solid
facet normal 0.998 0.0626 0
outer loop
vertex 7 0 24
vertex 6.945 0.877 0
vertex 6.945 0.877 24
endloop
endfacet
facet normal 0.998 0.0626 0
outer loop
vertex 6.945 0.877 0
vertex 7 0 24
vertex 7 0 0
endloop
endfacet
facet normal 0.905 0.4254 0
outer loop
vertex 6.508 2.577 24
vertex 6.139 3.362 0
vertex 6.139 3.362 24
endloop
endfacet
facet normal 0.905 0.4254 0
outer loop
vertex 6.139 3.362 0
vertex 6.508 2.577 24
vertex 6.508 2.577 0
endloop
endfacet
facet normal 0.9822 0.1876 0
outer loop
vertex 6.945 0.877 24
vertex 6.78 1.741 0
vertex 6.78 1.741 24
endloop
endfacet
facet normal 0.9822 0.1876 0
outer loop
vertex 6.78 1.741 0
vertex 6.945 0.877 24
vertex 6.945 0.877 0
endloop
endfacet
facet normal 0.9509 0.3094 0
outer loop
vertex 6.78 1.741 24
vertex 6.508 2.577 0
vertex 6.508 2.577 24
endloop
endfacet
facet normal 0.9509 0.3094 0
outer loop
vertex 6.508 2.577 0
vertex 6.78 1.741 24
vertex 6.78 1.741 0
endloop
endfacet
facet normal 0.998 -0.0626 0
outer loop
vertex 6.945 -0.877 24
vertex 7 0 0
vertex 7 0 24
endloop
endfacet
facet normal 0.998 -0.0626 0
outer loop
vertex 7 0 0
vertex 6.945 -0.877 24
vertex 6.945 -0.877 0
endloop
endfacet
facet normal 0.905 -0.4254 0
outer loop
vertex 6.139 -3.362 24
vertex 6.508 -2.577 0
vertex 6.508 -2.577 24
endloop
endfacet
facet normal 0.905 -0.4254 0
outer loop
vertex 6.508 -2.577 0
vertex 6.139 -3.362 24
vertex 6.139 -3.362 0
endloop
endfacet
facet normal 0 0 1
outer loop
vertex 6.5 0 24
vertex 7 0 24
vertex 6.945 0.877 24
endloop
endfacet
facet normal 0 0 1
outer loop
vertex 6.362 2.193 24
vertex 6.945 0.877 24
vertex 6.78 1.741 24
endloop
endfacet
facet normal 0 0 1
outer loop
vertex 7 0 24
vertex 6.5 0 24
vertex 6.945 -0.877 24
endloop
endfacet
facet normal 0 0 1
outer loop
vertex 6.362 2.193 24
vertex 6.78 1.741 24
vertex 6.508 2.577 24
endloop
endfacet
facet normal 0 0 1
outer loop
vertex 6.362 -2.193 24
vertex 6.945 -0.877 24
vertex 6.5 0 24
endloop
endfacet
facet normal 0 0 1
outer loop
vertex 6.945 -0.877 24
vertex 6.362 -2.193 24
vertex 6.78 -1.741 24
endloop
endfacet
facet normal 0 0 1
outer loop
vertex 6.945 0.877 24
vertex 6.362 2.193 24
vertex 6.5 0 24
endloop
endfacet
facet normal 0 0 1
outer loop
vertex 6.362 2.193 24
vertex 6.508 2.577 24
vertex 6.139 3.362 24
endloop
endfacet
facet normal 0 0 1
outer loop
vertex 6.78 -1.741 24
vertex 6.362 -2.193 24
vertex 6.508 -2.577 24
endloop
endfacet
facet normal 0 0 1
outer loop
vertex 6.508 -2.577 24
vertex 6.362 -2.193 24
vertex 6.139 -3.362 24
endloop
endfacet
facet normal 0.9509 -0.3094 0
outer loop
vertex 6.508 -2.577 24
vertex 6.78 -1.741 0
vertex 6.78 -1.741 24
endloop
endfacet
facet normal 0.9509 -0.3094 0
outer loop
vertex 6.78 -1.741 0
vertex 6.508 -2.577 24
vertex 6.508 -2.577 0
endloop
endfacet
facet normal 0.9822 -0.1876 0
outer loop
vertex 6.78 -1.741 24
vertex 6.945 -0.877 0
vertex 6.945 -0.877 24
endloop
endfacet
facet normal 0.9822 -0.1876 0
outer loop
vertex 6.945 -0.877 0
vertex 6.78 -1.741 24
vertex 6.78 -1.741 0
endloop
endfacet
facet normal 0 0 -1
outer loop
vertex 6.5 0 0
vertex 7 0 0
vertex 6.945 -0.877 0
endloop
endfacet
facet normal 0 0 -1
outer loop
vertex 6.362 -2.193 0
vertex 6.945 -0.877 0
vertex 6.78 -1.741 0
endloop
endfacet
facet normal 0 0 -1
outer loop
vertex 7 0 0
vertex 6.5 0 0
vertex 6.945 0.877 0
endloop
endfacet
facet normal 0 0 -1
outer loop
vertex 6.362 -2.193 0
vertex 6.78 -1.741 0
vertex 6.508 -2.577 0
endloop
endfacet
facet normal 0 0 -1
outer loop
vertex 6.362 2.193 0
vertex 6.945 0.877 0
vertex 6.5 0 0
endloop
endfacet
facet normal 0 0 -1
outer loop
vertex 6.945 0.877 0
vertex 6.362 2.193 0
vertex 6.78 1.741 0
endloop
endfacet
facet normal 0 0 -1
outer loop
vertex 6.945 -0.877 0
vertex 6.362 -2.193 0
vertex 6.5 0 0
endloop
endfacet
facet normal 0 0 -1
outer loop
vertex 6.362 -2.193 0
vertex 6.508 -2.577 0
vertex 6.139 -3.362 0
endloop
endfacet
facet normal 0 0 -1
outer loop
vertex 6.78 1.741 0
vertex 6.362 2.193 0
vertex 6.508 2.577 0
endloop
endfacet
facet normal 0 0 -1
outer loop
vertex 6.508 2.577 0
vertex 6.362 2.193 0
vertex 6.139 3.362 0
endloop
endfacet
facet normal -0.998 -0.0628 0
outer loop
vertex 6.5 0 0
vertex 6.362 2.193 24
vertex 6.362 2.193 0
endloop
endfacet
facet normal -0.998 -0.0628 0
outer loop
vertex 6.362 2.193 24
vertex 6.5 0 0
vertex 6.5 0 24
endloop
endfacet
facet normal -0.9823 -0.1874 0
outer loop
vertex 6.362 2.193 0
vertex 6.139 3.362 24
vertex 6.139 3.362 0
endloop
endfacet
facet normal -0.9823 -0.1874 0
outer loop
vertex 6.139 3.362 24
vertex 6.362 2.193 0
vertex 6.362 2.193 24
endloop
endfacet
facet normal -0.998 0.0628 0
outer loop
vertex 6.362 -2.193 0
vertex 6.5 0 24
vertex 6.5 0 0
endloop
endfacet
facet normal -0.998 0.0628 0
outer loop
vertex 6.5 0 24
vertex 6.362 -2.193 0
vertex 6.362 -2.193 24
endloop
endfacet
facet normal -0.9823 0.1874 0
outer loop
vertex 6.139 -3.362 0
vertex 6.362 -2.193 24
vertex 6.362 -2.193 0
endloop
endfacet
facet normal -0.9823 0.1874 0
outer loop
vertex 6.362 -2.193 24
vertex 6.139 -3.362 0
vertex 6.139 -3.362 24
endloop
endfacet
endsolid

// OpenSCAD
$fn = 50;


difference() {
	union() {
		cylinder(h = 24, r = 7.0000000000);
		translate(v = [-14.0000000000, 0, 0]) {
			cylinder(h = 24, r = 7.0000000000);
		}
	}
	union() {
		cylinder(h = 24, r = 3.2500000000);
		cylinder(h = 24, r = 1.8000000000);
		cylinder(h = 24, r = 1.8000000000);
		cylinder(h = 24, r = 1.8000000000);
		translate(v = [-18.5000000000, 0, 0]) {
			hull() {
				translate(v = [-3.7500000000, 0.0000000000, 0]) {
					cylinder(h = 24, r = 7.5000000000);
				}
				translate(v = [3.7500000000, 0.0000000000, 0]) {
					cylinder(h = 24, r = 7.5000000000);
				}
				translate(v = [-3.7500000000, -0.0000000000, 0]) {
					cylinder(h = 24, r = 7.5000000000);
				}
				translate(v = [3.7500000000, -0.0000000000, 0]) {
					cylinder(h = 24, r = 7.5000000000);
				}
			}
		}
		translate(v = [-11.0000000000, 0, 0.0000000000]) {
			cylinder(h = 24, r = 17.5000000000);
		}
	}
}
